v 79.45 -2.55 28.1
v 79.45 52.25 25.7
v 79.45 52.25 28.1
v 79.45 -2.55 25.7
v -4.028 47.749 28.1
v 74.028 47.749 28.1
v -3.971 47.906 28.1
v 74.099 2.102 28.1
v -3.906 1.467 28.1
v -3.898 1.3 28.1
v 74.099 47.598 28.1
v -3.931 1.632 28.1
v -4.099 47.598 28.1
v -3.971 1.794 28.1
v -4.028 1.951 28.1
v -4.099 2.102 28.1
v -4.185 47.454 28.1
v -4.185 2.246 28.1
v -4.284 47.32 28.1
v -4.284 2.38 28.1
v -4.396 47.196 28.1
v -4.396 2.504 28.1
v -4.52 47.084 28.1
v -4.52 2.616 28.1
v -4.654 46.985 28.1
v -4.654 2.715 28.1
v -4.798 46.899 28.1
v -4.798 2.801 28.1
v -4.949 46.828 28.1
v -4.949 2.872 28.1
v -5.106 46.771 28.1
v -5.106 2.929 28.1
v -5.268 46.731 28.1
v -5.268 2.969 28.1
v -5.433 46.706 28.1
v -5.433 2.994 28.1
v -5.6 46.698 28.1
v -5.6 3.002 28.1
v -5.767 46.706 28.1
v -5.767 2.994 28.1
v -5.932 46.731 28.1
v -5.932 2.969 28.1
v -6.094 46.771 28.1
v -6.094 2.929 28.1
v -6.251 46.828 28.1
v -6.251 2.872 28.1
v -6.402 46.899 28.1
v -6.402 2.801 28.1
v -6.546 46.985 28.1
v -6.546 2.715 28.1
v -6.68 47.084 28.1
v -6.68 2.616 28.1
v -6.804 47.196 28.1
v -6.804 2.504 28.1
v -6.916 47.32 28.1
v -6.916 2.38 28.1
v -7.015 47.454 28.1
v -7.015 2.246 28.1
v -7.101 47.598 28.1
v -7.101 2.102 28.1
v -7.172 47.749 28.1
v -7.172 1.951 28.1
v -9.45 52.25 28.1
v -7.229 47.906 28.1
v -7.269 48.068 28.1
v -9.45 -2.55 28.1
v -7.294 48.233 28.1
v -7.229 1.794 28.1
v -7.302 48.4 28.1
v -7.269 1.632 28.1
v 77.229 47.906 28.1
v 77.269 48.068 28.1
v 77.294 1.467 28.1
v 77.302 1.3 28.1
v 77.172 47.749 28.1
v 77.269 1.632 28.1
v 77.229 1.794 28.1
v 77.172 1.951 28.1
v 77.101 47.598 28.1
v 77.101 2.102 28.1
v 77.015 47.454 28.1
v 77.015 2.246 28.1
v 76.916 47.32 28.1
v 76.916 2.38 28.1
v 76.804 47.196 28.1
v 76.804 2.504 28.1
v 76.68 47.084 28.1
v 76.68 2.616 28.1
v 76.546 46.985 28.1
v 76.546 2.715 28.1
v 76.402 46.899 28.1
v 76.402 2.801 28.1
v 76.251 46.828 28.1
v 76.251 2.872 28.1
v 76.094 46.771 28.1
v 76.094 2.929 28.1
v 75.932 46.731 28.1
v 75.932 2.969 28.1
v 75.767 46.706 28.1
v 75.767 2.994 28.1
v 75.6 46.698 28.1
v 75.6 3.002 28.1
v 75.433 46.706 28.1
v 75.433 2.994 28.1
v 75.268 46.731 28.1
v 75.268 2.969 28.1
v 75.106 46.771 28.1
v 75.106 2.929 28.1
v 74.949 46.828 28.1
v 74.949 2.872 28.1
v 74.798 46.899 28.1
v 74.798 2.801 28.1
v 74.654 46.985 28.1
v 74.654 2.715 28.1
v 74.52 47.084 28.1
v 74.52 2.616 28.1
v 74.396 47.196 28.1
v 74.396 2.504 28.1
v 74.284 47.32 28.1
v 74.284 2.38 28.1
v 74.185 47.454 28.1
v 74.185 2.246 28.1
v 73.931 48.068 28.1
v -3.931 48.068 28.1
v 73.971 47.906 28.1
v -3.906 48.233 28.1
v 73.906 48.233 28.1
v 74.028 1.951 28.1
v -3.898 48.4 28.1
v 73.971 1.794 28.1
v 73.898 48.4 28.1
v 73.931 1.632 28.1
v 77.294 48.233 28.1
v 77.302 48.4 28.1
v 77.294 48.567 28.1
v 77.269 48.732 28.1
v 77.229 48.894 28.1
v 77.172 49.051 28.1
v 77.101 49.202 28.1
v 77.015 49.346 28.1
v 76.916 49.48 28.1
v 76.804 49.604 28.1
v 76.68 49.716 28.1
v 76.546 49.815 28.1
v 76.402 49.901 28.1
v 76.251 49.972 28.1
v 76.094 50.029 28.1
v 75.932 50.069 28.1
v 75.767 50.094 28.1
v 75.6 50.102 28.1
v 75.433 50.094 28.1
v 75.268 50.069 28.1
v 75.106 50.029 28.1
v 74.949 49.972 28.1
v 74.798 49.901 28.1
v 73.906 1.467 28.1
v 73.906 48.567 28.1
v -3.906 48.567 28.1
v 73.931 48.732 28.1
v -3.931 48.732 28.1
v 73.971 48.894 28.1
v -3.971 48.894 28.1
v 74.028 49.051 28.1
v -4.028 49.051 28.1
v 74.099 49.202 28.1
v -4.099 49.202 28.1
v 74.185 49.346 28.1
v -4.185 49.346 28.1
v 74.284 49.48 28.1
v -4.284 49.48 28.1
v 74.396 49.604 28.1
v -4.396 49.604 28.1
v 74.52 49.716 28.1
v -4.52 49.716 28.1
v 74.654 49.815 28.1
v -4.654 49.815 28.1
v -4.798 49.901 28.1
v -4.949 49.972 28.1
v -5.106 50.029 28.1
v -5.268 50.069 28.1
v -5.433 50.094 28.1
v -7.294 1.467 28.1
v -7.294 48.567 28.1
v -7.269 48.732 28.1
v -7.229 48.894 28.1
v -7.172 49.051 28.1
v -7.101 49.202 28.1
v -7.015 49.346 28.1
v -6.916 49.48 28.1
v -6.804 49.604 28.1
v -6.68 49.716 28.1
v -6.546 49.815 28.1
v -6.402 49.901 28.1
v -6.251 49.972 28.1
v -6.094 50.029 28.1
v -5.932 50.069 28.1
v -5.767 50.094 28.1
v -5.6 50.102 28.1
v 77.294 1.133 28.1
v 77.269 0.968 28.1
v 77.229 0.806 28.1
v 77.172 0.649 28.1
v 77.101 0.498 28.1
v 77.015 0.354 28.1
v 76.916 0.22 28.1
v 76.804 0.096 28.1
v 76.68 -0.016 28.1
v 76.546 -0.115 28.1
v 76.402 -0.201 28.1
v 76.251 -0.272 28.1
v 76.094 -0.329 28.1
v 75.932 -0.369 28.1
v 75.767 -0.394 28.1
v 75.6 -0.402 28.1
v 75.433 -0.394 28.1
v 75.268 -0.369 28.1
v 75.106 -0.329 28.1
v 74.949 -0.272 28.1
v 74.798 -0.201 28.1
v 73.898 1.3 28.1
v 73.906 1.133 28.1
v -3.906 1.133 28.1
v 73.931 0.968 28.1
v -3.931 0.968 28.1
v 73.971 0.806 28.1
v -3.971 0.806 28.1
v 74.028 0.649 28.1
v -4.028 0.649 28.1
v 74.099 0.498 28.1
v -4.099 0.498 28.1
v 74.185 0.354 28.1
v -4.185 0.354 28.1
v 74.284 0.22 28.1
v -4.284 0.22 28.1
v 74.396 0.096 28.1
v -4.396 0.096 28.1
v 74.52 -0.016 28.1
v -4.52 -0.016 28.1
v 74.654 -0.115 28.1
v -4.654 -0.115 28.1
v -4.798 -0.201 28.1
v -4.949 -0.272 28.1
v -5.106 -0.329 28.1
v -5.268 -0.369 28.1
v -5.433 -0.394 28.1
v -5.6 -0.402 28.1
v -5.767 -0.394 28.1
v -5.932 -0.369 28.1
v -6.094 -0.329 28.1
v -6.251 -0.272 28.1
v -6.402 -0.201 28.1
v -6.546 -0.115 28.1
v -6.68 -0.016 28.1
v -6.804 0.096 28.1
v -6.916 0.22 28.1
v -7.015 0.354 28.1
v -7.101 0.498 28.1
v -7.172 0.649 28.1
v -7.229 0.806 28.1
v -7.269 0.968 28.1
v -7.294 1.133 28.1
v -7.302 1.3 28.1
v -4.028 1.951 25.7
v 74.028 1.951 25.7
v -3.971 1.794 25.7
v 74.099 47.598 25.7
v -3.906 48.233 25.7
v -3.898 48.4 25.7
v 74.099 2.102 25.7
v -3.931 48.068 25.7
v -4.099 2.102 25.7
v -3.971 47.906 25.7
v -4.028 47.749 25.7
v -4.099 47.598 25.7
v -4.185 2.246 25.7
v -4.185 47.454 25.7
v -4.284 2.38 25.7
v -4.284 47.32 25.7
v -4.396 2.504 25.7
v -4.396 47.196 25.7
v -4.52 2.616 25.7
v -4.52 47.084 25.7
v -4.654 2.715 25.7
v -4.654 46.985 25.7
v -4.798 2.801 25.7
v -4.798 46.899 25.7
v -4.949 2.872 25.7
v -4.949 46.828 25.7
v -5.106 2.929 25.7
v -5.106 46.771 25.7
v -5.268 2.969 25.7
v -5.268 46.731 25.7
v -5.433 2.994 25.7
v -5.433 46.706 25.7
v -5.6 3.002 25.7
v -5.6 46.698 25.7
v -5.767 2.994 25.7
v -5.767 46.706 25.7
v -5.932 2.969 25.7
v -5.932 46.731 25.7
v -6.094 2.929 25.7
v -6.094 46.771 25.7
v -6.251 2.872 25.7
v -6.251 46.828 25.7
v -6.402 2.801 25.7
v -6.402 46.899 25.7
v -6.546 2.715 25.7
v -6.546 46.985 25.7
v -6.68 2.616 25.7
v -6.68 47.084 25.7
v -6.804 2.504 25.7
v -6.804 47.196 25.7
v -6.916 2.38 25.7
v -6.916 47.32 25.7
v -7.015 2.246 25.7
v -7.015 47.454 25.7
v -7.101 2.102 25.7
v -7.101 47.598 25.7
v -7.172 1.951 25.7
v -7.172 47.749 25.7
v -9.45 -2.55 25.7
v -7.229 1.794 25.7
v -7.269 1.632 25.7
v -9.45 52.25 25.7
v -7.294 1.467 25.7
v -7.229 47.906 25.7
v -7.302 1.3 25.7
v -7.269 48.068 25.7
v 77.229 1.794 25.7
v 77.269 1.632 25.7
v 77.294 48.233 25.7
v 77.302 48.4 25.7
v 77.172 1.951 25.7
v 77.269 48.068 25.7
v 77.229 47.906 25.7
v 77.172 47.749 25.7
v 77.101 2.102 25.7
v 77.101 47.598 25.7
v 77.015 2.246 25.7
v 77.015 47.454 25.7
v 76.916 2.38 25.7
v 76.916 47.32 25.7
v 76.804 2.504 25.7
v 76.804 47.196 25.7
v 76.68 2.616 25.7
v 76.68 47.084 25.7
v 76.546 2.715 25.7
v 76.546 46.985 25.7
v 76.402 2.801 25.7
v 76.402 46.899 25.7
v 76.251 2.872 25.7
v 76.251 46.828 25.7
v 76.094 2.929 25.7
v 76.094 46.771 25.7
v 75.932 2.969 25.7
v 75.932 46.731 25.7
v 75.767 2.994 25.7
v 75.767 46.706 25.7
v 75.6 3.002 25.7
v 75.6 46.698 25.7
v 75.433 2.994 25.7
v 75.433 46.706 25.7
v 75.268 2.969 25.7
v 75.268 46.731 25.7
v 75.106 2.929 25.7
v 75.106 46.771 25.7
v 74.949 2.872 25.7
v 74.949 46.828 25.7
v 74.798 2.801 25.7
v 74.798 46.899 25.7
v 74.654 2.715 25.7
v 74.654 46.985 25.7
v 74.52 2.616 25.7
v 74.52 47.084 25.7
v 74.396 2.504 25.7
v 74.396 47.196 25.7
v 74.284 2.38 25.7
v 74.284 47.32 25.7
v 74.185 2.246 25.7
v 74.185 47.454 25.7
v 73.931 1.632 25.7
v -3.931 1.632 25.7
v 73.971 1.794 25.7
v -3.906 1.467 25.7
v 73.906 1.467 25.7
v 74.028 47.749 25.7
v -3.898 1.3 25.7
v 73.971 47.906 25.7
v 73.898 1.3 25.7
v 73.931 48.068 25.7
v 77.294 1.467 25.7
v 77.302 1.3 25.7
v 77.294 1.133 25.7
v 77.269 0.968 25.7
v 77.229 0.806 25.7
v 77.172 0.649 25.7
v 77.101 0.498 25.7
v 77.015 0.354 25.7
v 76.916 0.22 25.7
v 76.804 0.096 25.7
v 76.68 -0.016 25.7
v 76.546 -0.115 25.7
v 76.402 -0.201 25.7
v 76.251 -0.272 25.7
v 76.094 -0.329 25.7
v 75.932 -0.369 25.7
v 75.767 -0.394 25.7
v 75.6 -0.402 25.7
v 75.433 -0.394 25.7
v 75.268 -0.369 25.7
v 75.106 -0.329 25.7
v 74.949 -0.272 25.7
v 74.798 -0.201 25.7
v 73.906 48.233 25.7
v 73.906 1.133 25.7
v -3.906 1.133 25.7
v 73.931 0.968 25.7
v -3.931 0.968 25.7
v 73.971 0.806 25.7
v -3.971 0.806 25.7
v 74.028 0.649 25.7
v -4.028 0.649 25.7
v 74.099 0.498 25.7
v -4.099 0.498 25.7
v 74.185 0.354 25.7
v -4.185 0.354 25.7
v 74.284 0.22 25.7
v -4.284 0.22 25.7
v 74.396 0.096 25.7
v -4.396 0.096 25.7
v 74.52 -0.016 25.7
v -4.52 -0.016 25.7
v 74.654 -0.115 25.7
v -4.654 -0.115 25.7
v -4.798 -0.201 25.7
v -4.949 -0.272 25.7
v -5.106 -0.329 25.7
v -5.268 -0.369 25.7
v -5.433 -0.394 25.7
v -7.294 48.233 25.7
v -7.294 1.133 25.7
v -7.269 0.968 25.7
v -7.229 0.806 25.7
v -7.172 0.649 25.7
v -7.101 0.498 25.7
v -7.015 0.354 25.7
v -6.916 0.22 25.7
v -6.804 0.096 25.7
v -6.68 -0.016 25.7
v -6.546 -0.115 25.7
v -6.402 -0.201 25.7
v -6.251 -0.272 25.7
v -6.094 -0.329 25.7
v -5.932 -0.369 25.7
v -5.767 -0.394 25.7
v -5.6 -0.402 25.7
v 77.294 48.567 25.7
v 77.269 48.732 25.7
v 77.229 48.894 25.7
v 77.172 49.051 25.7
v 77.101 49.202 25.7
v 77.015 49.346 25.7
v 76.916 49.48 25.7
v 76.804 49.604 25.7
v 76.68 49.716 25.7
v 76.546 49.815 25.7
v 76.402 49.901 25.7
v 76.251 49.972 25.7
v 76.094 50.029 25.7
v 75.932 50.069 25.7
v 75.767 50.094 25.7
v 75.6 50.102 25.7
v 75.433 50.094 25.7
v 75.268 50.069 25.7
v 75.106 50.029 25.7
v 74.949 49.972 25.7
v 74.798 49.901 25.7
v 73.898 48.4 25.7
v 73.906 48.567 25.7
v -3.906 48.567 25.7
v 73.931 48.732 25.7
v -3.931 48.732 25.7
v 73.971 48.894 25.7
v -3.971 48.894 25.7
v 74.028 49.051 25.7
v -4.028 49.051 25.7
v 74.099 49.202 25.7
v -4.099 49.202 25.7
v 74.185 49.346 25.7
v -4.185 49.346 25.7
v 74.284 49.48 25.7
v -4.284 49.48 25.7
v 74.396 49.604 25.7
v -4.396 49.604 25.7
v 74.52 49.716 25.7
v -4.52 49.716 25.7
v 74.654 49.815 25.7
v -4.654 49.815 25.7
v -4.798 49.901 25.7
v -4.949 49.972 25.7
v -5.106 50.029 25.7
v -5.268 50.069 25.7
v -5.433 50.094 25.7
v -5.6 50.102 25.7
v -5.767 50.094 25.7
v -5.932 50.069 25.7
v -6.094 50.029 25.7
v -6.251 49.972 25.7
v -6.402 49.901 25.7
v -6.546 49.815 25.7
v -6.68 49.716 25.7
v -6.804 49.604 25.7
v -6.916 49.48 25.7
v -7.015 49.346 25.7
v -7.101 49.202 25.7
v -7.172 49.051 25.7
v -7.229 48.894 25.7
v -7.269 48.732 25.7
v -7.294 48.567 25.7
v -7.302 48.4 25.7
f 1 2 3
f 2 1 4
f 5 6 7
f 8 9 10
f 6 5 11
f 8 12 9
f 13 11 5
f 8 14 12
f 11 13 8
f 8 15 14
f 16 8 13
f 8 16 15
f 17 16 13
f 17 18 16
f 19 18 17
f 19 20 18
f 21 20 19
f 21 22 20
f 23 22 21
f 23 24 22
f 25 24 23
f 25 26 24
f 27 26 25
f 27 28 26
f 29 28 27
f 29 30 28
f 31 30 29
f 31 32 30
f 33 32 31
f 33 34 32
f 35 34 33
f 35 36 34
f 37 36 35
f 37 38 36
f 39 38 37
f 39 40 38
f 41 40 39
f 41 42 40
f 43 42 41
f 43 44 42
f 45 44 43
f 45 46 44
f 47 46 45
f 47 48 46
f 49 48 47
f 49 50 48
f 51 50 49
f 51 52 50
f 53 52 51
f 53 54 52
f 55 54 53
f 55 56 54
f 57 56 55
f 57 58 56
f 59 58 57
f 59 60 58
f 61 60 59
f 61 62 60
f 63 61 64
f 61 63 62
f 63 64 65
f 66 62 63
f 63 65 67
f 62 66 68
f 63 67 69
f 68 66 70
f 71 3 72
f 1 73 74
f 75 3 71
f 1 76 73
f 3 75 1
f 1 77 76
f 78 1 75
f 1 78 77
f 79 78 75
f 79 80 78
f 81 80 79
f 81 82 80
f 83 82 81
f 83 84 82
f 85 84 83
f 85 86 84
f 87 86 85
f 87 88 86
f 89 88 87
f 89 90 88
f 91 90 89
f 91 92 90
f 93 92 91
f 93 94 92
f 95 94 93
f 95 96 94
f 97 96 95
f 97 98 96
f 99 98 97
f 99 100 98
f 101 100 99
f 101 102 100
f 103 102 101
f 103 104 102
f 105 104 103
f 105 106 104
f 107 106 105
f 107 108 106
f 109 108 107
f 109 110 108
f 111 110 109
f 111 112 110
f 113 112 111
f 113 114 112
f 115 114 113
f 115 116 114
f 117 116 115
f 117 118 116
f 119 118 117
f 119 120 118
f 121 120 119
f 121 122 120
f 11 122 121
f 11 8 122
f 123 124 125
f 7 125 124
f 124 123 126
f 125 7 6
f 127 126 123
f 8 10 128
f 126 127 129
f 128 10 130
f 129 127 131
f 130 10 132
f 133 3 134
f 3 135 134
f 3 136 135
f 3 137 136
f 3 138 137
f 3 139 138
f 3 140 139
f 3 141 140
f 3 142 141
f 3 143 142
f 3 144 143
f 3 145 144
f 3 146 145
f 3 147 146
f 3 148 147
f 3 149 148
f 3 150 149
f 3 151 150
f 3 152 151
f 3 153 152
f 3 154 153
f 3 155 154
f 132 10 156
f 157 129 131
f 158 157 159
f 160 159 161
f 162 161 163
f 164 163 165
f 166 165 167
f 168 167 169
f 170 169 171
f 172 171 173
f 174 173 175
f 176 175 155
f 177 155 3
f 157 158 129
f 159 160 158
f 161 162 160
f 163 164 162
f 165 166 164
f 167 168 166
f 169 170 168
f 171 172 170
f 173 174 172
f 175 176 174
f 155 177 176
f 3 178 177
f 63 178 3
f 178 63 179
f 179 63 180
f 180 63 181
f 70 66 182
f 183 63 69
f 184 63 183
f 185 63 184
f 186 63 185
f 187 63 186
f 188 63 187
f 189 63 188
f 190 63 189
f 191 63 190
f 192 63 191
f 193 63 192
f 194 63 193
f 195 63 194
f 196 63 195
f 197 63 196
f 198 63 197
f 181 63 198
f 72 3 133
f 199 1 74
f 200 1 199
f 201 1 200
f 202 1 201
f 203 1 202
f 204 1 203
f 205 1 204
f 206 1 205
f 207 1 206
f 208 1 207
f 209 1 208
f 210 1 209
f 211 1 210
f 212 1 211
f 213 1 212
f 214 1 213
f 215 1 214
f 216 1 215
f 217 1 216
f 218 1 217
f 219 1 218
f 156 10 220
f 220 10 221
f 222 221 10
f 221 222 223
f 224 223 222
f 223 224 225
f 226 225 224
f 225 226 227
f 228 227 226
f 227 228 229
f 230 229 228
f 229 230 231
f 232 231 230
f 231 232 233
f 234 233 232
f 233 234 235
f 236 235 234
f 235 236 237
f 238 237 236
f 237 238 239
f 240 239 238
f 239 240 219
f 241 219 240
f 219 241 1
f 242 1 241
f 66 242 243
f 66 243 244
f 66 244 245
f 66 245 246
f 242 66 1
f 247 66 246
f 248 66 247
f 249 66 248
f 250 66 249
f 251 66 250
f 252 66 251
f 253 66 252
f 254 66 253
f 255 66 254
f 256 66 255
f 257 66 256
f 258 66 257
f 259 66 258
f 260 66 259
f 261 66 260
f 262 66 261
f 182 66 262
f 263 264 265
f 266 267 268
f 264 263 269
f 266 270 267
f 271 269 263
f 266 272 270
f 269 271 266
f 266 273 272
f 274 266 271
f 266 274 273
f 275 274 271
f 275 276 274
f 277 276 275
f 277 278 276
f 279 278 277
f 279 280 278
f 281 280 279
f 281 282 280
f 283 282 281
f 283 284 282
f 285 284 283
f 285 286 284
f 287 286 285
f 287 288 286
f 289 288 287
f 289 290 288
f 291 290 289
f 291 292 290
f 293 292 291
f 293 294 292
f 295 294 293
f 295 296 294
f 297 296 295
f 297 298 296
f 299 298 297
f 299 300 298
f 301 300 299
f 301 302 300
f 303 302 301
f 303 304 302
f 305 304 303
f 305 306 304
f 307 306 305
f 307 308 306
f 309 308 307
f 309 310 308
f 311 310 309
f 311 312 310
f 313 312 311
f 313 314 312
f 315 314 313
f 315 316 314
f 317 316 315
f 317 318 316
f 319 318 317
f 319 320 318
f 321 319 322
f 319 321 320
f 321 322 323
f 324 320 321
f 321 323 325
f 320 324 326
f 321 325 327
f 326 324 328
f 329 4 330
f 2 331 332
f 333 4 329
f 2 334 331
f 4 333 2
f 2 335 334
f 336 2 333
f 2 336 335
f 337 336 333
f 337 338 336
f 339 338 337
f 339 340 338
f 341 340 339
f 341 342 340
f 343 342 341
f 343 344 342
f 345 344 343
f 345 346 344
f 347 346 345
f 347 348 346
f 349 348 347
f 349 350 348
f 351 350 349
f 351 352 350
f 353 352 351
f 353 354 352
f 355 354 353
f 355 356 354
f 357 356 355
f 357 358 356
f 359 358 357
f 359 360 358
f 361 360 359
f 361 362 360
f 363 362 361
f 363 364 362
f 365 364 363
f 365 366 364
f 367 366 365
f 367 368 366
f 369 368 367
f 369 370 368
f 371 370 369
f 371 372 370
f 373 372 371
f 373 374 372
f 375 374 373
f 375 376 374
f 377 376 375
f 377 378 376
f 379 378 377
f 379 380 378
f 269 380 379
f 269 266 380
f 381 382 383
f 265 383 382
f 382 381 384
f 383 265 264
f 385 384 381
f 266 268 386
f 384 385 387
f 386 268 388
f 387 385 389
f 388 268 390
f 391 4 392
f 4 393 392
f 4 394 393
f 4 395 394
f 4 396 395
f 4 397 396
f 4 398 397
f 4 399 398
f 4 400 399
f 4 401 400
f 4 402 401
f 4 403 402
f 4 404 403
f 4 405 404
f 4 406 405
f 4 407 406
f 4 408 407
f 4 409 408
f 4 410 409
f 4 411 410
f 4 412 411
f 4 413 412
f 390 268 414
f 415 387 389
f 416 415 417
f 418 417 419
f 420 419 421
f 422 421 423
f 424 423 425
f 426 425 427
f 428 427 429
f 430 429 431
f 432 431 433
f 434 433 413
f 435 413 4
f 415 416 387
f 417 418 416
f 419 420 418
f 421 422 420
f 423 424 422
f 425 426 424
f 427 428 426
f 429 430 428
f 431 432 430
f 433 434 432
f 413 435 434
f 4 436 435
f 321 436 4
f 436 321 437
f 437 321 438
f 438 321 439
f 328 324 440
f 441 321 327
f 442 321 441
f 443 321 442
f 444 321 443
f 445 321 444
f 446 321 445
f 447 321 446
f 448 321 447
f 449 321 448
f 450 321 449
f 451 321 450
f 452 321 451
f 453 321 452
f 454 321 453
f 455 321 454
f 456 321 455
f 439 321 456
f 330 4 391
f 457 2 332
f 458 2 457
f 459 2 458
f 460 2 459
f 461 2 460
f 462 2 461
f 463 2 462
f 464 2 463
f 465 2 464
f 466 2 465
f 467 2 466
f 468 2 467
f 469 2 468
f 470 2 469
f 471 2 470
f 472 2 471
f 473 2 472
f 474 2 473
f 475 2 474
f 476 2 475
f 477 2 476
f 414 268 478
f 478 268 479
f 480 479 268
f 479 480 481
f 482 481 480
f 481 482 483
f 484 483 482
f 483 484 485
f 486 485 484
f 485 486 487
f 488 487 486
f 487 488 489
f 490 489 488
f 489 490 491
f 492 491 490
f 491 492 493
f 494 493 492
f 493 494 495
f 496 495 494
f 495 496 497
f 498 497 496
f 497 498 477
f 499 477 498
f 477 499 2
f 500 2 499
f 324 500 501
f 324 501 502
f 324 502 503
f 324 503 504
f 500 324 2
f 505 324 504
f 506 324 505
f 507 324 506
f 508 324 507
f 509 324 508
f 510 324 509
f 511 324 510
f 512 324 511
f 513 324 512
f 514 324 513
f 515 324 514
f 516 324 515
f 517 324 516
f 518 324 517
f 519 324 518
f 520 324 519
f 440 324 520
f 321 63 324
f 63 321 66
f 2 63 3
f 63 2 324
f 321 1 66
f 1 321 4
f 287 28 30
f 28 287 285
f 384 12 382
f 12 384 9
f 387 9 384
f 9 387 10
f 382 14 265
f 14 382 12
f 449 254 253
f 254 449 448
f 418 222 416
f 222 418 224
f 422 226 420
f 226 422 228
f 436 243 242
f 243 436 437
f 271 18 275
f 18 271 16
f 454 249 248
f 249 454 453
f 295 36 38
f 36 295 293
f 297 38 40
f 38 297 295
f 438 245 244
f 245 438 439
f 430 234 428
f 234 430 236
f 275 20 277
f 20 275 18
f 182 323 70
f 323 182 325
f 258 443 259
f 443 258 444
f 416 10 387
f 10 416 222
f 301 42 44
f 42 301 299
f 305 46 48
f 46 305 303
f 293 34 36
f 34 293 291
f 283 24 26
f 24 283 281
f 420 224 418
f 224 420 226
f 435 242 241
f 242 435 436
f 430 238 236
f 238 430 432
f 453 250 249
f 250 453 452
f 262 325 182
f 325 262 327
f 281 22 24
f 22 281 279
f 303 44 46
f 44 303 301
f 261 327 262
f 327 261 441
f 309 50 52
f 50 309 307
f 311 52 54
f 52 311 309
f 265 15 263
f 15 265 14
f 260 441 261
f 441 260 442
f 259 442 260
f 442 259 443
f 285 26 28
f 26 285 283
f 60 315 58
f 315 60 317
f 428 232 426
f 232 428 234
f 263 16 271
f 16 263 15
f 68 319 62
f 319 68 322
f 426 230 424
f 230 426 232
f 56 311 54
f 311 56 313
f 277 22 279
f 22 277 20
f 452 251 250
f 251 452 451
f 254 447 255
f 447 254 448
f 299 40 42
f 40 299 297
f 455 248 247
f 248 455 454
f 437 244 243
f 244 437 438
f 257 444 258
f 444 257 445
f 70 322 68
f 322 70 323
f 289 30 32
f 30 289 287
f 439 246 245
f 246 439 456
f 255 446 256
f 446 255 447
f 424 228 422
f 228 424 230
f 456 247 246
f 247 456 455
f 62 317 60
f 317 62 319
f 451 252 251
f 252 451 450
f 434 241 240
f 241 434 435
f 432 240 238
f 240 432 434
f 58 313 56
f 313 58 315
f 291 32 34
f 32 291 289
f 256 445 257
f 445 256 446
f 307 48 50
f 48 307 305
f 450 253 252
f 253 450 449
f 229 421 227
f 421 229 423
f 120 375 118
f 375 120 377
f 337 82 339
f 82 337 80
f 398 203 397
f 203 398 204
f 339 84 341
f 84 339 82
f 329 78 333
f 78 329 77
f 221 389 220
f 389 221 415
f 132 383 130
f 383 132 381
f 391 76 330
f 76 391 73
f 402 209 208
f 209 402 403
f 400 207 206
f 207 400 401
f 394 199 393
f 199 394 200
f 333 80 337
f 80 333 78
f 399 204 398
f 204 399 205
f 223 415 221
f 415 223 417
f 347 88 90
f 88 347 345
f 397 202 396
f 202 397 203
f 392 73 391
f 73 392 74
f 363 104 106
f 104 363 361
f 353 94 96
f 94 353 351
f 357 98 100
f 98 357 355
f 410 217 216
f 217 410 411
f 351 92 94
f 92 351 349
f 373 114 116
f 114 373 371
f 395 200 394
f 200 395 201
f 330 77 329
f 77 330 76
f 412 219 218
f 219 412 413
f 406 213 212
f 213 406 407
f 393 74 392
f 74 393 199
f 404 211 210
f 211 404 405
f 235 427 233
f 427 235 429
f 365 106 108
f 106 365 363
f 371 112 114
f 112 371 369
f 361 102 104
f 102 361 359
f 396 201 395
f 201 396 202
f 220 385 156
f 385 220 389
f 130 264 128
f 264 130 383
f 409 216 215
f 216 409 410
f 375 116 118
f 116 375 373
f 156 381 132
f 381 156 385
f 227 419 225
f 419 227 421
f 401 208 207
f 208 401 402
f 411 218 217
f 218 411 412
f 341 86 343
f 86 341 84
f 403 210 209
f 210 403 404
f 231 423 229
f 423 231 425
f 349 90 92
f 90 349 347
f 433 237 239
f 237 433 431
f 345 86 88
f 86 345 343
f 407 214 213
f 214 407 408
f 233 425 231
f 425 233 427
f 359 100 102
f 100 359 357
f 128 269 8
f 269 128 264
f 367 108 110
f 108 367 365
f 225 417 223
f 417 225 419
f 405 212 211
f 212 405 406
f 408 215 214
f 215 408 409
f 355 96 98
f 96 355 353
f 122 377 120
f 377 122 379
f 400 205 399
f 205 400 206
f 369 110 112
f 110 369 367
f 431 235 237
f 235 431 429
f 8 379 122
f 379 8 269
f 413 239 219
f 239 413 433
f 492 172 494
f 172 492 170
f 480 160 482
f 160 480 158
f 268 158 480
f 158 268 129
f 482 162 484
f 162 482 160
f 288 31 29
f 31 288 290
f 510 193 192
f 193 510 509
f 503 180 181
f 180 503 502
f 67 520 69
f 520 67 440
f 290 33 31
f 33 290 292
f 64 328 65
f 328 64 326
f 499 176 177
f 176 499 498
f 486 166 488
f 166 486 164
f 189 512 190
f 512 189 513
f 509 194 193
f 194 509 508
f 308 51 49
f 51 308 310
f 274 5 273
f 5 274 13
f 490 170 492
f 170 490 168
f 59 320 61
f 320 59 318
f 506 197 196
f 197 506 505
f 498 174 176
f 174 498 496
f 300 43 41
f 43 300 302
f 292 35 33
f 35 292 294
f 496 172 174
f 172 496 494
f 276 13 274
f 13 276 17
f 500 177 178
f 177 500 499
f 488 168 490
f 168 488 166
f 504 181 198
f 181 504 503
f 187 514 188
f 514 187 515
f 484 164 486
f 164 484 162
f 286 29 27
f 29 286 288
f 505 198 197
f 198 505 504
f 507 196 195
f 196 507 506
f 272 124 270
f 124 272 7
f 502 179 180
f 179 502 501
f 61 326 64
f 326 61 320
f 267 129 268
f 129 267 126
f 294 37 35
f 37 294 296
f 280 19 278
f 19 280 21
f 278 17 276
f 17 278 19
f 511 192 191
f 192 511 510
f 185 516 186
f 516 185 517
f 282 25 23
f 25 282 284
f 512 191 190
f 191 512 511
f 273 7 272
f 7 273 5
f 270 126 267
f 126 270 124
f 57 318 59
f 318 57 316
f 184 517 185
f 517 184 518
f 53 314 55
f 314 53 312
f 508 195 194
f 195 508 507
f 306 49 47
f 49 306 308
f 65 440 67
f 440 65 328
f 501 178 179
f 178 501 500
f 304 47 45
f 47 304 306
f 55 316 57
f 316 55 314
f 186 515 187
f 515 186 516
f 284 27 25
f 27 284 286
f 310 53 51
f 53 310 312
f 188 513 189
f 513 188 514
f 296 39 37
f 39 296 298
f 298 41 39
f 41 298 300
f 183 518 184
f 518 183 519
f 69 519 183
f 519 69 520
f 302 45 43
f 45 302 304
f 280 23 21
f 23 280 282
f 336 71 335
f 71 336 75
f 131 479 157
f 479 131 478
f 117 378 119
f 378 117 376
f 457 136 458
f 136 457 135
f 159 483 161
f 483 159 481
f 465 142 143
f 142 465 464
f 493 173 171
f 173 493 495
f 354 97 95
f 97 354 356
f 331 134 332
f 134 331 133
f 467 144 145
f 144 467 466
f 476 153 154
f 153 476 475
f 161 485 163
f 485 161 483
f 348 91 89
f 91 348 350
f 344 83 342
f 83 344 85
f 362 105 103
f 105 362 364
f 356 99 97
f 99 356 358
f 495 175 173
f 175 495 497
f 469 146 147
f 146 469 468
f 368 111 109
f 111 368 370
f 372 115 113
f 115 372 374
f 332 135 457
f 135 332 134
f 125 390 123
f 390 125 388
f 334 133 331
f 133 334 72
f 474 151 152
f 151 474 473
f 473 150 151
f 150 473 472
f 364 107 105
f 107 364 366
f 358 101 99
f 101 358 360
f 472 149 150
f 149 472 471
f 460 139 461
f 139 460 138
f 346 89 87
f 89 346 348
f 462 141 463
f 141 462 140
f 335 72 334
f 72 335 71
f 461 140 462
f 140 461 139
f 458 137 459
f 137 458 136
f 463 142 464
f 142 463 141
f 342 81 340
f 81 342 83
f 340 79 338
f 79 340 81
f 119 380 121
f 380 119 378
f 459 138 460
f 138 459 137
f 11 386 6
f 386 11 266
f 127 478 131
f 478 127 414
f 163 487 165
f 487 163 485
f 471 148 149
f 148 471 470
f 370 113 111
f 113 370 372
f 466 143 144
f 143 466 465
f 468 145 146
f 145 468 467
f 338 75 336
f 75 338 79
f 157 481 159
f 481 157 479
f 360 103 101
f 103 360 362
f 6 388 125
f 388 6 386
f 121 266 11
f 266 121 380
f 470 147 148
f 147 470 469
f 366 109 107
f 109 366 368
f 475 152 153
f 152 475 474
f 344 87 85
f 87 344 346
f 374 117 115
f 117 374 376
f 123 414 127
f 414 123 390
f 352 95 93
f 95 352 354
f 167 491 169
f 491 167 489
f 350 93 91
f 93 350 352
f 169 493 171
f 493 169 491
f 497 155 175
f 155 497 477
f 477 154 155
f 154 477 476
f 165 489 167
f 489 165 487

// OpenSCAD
// body lid
difference() {
  union() {
    // body lid (lid_plate)
    multmatrix([[1, 0, 0, 35], [0, 1, 0, 24.85], [0, 0, 1, 25.7], [0, 0, 0, 1]]) translate([-44.45, -27.4, 0]) cube([88.9, 54.8, 2.4]);
  }
  // cut boss_1_lid_hole (screw_hole)
  multmatrix([[1, 0, 0, -5.6], [0, 1, 0, 1.3], [0, 0, 1, 24.7], [0, 0, 0, 1]]) cylinder(h=4.4, d=3.4041, $fn=64);
  // cut boss_2_lid_hole (screw_hole)
  multmatrix([[1, 0, 0, 75.6], [0, 1, 0, 1.3], [0, 0, 1, 24.7], [0, 0, 0, 1]]) cylinder(h=4.4, d=3.4041, $fn=64);
  // cut boss_3_lid_hole (screw_hole)
  multmatrix([[1, 0, 0, -5.6], [0, 1, 0, 48.4], [0, 0, 1, 24.7], [0, 0, 0, 1]]) cylinder(h=4.4, d=3.4041, $fn=64);
  // cut boss_4_lid_hole (screw_hole)
  multmatrix([[1, 0, 0, 75.6], [0, 1, 0, 48.4], [0, 0, 1, 24.7], [0, 0, 0, 1]]) cylinder(h=4.4, d=3.4041, $fn=64);
}
